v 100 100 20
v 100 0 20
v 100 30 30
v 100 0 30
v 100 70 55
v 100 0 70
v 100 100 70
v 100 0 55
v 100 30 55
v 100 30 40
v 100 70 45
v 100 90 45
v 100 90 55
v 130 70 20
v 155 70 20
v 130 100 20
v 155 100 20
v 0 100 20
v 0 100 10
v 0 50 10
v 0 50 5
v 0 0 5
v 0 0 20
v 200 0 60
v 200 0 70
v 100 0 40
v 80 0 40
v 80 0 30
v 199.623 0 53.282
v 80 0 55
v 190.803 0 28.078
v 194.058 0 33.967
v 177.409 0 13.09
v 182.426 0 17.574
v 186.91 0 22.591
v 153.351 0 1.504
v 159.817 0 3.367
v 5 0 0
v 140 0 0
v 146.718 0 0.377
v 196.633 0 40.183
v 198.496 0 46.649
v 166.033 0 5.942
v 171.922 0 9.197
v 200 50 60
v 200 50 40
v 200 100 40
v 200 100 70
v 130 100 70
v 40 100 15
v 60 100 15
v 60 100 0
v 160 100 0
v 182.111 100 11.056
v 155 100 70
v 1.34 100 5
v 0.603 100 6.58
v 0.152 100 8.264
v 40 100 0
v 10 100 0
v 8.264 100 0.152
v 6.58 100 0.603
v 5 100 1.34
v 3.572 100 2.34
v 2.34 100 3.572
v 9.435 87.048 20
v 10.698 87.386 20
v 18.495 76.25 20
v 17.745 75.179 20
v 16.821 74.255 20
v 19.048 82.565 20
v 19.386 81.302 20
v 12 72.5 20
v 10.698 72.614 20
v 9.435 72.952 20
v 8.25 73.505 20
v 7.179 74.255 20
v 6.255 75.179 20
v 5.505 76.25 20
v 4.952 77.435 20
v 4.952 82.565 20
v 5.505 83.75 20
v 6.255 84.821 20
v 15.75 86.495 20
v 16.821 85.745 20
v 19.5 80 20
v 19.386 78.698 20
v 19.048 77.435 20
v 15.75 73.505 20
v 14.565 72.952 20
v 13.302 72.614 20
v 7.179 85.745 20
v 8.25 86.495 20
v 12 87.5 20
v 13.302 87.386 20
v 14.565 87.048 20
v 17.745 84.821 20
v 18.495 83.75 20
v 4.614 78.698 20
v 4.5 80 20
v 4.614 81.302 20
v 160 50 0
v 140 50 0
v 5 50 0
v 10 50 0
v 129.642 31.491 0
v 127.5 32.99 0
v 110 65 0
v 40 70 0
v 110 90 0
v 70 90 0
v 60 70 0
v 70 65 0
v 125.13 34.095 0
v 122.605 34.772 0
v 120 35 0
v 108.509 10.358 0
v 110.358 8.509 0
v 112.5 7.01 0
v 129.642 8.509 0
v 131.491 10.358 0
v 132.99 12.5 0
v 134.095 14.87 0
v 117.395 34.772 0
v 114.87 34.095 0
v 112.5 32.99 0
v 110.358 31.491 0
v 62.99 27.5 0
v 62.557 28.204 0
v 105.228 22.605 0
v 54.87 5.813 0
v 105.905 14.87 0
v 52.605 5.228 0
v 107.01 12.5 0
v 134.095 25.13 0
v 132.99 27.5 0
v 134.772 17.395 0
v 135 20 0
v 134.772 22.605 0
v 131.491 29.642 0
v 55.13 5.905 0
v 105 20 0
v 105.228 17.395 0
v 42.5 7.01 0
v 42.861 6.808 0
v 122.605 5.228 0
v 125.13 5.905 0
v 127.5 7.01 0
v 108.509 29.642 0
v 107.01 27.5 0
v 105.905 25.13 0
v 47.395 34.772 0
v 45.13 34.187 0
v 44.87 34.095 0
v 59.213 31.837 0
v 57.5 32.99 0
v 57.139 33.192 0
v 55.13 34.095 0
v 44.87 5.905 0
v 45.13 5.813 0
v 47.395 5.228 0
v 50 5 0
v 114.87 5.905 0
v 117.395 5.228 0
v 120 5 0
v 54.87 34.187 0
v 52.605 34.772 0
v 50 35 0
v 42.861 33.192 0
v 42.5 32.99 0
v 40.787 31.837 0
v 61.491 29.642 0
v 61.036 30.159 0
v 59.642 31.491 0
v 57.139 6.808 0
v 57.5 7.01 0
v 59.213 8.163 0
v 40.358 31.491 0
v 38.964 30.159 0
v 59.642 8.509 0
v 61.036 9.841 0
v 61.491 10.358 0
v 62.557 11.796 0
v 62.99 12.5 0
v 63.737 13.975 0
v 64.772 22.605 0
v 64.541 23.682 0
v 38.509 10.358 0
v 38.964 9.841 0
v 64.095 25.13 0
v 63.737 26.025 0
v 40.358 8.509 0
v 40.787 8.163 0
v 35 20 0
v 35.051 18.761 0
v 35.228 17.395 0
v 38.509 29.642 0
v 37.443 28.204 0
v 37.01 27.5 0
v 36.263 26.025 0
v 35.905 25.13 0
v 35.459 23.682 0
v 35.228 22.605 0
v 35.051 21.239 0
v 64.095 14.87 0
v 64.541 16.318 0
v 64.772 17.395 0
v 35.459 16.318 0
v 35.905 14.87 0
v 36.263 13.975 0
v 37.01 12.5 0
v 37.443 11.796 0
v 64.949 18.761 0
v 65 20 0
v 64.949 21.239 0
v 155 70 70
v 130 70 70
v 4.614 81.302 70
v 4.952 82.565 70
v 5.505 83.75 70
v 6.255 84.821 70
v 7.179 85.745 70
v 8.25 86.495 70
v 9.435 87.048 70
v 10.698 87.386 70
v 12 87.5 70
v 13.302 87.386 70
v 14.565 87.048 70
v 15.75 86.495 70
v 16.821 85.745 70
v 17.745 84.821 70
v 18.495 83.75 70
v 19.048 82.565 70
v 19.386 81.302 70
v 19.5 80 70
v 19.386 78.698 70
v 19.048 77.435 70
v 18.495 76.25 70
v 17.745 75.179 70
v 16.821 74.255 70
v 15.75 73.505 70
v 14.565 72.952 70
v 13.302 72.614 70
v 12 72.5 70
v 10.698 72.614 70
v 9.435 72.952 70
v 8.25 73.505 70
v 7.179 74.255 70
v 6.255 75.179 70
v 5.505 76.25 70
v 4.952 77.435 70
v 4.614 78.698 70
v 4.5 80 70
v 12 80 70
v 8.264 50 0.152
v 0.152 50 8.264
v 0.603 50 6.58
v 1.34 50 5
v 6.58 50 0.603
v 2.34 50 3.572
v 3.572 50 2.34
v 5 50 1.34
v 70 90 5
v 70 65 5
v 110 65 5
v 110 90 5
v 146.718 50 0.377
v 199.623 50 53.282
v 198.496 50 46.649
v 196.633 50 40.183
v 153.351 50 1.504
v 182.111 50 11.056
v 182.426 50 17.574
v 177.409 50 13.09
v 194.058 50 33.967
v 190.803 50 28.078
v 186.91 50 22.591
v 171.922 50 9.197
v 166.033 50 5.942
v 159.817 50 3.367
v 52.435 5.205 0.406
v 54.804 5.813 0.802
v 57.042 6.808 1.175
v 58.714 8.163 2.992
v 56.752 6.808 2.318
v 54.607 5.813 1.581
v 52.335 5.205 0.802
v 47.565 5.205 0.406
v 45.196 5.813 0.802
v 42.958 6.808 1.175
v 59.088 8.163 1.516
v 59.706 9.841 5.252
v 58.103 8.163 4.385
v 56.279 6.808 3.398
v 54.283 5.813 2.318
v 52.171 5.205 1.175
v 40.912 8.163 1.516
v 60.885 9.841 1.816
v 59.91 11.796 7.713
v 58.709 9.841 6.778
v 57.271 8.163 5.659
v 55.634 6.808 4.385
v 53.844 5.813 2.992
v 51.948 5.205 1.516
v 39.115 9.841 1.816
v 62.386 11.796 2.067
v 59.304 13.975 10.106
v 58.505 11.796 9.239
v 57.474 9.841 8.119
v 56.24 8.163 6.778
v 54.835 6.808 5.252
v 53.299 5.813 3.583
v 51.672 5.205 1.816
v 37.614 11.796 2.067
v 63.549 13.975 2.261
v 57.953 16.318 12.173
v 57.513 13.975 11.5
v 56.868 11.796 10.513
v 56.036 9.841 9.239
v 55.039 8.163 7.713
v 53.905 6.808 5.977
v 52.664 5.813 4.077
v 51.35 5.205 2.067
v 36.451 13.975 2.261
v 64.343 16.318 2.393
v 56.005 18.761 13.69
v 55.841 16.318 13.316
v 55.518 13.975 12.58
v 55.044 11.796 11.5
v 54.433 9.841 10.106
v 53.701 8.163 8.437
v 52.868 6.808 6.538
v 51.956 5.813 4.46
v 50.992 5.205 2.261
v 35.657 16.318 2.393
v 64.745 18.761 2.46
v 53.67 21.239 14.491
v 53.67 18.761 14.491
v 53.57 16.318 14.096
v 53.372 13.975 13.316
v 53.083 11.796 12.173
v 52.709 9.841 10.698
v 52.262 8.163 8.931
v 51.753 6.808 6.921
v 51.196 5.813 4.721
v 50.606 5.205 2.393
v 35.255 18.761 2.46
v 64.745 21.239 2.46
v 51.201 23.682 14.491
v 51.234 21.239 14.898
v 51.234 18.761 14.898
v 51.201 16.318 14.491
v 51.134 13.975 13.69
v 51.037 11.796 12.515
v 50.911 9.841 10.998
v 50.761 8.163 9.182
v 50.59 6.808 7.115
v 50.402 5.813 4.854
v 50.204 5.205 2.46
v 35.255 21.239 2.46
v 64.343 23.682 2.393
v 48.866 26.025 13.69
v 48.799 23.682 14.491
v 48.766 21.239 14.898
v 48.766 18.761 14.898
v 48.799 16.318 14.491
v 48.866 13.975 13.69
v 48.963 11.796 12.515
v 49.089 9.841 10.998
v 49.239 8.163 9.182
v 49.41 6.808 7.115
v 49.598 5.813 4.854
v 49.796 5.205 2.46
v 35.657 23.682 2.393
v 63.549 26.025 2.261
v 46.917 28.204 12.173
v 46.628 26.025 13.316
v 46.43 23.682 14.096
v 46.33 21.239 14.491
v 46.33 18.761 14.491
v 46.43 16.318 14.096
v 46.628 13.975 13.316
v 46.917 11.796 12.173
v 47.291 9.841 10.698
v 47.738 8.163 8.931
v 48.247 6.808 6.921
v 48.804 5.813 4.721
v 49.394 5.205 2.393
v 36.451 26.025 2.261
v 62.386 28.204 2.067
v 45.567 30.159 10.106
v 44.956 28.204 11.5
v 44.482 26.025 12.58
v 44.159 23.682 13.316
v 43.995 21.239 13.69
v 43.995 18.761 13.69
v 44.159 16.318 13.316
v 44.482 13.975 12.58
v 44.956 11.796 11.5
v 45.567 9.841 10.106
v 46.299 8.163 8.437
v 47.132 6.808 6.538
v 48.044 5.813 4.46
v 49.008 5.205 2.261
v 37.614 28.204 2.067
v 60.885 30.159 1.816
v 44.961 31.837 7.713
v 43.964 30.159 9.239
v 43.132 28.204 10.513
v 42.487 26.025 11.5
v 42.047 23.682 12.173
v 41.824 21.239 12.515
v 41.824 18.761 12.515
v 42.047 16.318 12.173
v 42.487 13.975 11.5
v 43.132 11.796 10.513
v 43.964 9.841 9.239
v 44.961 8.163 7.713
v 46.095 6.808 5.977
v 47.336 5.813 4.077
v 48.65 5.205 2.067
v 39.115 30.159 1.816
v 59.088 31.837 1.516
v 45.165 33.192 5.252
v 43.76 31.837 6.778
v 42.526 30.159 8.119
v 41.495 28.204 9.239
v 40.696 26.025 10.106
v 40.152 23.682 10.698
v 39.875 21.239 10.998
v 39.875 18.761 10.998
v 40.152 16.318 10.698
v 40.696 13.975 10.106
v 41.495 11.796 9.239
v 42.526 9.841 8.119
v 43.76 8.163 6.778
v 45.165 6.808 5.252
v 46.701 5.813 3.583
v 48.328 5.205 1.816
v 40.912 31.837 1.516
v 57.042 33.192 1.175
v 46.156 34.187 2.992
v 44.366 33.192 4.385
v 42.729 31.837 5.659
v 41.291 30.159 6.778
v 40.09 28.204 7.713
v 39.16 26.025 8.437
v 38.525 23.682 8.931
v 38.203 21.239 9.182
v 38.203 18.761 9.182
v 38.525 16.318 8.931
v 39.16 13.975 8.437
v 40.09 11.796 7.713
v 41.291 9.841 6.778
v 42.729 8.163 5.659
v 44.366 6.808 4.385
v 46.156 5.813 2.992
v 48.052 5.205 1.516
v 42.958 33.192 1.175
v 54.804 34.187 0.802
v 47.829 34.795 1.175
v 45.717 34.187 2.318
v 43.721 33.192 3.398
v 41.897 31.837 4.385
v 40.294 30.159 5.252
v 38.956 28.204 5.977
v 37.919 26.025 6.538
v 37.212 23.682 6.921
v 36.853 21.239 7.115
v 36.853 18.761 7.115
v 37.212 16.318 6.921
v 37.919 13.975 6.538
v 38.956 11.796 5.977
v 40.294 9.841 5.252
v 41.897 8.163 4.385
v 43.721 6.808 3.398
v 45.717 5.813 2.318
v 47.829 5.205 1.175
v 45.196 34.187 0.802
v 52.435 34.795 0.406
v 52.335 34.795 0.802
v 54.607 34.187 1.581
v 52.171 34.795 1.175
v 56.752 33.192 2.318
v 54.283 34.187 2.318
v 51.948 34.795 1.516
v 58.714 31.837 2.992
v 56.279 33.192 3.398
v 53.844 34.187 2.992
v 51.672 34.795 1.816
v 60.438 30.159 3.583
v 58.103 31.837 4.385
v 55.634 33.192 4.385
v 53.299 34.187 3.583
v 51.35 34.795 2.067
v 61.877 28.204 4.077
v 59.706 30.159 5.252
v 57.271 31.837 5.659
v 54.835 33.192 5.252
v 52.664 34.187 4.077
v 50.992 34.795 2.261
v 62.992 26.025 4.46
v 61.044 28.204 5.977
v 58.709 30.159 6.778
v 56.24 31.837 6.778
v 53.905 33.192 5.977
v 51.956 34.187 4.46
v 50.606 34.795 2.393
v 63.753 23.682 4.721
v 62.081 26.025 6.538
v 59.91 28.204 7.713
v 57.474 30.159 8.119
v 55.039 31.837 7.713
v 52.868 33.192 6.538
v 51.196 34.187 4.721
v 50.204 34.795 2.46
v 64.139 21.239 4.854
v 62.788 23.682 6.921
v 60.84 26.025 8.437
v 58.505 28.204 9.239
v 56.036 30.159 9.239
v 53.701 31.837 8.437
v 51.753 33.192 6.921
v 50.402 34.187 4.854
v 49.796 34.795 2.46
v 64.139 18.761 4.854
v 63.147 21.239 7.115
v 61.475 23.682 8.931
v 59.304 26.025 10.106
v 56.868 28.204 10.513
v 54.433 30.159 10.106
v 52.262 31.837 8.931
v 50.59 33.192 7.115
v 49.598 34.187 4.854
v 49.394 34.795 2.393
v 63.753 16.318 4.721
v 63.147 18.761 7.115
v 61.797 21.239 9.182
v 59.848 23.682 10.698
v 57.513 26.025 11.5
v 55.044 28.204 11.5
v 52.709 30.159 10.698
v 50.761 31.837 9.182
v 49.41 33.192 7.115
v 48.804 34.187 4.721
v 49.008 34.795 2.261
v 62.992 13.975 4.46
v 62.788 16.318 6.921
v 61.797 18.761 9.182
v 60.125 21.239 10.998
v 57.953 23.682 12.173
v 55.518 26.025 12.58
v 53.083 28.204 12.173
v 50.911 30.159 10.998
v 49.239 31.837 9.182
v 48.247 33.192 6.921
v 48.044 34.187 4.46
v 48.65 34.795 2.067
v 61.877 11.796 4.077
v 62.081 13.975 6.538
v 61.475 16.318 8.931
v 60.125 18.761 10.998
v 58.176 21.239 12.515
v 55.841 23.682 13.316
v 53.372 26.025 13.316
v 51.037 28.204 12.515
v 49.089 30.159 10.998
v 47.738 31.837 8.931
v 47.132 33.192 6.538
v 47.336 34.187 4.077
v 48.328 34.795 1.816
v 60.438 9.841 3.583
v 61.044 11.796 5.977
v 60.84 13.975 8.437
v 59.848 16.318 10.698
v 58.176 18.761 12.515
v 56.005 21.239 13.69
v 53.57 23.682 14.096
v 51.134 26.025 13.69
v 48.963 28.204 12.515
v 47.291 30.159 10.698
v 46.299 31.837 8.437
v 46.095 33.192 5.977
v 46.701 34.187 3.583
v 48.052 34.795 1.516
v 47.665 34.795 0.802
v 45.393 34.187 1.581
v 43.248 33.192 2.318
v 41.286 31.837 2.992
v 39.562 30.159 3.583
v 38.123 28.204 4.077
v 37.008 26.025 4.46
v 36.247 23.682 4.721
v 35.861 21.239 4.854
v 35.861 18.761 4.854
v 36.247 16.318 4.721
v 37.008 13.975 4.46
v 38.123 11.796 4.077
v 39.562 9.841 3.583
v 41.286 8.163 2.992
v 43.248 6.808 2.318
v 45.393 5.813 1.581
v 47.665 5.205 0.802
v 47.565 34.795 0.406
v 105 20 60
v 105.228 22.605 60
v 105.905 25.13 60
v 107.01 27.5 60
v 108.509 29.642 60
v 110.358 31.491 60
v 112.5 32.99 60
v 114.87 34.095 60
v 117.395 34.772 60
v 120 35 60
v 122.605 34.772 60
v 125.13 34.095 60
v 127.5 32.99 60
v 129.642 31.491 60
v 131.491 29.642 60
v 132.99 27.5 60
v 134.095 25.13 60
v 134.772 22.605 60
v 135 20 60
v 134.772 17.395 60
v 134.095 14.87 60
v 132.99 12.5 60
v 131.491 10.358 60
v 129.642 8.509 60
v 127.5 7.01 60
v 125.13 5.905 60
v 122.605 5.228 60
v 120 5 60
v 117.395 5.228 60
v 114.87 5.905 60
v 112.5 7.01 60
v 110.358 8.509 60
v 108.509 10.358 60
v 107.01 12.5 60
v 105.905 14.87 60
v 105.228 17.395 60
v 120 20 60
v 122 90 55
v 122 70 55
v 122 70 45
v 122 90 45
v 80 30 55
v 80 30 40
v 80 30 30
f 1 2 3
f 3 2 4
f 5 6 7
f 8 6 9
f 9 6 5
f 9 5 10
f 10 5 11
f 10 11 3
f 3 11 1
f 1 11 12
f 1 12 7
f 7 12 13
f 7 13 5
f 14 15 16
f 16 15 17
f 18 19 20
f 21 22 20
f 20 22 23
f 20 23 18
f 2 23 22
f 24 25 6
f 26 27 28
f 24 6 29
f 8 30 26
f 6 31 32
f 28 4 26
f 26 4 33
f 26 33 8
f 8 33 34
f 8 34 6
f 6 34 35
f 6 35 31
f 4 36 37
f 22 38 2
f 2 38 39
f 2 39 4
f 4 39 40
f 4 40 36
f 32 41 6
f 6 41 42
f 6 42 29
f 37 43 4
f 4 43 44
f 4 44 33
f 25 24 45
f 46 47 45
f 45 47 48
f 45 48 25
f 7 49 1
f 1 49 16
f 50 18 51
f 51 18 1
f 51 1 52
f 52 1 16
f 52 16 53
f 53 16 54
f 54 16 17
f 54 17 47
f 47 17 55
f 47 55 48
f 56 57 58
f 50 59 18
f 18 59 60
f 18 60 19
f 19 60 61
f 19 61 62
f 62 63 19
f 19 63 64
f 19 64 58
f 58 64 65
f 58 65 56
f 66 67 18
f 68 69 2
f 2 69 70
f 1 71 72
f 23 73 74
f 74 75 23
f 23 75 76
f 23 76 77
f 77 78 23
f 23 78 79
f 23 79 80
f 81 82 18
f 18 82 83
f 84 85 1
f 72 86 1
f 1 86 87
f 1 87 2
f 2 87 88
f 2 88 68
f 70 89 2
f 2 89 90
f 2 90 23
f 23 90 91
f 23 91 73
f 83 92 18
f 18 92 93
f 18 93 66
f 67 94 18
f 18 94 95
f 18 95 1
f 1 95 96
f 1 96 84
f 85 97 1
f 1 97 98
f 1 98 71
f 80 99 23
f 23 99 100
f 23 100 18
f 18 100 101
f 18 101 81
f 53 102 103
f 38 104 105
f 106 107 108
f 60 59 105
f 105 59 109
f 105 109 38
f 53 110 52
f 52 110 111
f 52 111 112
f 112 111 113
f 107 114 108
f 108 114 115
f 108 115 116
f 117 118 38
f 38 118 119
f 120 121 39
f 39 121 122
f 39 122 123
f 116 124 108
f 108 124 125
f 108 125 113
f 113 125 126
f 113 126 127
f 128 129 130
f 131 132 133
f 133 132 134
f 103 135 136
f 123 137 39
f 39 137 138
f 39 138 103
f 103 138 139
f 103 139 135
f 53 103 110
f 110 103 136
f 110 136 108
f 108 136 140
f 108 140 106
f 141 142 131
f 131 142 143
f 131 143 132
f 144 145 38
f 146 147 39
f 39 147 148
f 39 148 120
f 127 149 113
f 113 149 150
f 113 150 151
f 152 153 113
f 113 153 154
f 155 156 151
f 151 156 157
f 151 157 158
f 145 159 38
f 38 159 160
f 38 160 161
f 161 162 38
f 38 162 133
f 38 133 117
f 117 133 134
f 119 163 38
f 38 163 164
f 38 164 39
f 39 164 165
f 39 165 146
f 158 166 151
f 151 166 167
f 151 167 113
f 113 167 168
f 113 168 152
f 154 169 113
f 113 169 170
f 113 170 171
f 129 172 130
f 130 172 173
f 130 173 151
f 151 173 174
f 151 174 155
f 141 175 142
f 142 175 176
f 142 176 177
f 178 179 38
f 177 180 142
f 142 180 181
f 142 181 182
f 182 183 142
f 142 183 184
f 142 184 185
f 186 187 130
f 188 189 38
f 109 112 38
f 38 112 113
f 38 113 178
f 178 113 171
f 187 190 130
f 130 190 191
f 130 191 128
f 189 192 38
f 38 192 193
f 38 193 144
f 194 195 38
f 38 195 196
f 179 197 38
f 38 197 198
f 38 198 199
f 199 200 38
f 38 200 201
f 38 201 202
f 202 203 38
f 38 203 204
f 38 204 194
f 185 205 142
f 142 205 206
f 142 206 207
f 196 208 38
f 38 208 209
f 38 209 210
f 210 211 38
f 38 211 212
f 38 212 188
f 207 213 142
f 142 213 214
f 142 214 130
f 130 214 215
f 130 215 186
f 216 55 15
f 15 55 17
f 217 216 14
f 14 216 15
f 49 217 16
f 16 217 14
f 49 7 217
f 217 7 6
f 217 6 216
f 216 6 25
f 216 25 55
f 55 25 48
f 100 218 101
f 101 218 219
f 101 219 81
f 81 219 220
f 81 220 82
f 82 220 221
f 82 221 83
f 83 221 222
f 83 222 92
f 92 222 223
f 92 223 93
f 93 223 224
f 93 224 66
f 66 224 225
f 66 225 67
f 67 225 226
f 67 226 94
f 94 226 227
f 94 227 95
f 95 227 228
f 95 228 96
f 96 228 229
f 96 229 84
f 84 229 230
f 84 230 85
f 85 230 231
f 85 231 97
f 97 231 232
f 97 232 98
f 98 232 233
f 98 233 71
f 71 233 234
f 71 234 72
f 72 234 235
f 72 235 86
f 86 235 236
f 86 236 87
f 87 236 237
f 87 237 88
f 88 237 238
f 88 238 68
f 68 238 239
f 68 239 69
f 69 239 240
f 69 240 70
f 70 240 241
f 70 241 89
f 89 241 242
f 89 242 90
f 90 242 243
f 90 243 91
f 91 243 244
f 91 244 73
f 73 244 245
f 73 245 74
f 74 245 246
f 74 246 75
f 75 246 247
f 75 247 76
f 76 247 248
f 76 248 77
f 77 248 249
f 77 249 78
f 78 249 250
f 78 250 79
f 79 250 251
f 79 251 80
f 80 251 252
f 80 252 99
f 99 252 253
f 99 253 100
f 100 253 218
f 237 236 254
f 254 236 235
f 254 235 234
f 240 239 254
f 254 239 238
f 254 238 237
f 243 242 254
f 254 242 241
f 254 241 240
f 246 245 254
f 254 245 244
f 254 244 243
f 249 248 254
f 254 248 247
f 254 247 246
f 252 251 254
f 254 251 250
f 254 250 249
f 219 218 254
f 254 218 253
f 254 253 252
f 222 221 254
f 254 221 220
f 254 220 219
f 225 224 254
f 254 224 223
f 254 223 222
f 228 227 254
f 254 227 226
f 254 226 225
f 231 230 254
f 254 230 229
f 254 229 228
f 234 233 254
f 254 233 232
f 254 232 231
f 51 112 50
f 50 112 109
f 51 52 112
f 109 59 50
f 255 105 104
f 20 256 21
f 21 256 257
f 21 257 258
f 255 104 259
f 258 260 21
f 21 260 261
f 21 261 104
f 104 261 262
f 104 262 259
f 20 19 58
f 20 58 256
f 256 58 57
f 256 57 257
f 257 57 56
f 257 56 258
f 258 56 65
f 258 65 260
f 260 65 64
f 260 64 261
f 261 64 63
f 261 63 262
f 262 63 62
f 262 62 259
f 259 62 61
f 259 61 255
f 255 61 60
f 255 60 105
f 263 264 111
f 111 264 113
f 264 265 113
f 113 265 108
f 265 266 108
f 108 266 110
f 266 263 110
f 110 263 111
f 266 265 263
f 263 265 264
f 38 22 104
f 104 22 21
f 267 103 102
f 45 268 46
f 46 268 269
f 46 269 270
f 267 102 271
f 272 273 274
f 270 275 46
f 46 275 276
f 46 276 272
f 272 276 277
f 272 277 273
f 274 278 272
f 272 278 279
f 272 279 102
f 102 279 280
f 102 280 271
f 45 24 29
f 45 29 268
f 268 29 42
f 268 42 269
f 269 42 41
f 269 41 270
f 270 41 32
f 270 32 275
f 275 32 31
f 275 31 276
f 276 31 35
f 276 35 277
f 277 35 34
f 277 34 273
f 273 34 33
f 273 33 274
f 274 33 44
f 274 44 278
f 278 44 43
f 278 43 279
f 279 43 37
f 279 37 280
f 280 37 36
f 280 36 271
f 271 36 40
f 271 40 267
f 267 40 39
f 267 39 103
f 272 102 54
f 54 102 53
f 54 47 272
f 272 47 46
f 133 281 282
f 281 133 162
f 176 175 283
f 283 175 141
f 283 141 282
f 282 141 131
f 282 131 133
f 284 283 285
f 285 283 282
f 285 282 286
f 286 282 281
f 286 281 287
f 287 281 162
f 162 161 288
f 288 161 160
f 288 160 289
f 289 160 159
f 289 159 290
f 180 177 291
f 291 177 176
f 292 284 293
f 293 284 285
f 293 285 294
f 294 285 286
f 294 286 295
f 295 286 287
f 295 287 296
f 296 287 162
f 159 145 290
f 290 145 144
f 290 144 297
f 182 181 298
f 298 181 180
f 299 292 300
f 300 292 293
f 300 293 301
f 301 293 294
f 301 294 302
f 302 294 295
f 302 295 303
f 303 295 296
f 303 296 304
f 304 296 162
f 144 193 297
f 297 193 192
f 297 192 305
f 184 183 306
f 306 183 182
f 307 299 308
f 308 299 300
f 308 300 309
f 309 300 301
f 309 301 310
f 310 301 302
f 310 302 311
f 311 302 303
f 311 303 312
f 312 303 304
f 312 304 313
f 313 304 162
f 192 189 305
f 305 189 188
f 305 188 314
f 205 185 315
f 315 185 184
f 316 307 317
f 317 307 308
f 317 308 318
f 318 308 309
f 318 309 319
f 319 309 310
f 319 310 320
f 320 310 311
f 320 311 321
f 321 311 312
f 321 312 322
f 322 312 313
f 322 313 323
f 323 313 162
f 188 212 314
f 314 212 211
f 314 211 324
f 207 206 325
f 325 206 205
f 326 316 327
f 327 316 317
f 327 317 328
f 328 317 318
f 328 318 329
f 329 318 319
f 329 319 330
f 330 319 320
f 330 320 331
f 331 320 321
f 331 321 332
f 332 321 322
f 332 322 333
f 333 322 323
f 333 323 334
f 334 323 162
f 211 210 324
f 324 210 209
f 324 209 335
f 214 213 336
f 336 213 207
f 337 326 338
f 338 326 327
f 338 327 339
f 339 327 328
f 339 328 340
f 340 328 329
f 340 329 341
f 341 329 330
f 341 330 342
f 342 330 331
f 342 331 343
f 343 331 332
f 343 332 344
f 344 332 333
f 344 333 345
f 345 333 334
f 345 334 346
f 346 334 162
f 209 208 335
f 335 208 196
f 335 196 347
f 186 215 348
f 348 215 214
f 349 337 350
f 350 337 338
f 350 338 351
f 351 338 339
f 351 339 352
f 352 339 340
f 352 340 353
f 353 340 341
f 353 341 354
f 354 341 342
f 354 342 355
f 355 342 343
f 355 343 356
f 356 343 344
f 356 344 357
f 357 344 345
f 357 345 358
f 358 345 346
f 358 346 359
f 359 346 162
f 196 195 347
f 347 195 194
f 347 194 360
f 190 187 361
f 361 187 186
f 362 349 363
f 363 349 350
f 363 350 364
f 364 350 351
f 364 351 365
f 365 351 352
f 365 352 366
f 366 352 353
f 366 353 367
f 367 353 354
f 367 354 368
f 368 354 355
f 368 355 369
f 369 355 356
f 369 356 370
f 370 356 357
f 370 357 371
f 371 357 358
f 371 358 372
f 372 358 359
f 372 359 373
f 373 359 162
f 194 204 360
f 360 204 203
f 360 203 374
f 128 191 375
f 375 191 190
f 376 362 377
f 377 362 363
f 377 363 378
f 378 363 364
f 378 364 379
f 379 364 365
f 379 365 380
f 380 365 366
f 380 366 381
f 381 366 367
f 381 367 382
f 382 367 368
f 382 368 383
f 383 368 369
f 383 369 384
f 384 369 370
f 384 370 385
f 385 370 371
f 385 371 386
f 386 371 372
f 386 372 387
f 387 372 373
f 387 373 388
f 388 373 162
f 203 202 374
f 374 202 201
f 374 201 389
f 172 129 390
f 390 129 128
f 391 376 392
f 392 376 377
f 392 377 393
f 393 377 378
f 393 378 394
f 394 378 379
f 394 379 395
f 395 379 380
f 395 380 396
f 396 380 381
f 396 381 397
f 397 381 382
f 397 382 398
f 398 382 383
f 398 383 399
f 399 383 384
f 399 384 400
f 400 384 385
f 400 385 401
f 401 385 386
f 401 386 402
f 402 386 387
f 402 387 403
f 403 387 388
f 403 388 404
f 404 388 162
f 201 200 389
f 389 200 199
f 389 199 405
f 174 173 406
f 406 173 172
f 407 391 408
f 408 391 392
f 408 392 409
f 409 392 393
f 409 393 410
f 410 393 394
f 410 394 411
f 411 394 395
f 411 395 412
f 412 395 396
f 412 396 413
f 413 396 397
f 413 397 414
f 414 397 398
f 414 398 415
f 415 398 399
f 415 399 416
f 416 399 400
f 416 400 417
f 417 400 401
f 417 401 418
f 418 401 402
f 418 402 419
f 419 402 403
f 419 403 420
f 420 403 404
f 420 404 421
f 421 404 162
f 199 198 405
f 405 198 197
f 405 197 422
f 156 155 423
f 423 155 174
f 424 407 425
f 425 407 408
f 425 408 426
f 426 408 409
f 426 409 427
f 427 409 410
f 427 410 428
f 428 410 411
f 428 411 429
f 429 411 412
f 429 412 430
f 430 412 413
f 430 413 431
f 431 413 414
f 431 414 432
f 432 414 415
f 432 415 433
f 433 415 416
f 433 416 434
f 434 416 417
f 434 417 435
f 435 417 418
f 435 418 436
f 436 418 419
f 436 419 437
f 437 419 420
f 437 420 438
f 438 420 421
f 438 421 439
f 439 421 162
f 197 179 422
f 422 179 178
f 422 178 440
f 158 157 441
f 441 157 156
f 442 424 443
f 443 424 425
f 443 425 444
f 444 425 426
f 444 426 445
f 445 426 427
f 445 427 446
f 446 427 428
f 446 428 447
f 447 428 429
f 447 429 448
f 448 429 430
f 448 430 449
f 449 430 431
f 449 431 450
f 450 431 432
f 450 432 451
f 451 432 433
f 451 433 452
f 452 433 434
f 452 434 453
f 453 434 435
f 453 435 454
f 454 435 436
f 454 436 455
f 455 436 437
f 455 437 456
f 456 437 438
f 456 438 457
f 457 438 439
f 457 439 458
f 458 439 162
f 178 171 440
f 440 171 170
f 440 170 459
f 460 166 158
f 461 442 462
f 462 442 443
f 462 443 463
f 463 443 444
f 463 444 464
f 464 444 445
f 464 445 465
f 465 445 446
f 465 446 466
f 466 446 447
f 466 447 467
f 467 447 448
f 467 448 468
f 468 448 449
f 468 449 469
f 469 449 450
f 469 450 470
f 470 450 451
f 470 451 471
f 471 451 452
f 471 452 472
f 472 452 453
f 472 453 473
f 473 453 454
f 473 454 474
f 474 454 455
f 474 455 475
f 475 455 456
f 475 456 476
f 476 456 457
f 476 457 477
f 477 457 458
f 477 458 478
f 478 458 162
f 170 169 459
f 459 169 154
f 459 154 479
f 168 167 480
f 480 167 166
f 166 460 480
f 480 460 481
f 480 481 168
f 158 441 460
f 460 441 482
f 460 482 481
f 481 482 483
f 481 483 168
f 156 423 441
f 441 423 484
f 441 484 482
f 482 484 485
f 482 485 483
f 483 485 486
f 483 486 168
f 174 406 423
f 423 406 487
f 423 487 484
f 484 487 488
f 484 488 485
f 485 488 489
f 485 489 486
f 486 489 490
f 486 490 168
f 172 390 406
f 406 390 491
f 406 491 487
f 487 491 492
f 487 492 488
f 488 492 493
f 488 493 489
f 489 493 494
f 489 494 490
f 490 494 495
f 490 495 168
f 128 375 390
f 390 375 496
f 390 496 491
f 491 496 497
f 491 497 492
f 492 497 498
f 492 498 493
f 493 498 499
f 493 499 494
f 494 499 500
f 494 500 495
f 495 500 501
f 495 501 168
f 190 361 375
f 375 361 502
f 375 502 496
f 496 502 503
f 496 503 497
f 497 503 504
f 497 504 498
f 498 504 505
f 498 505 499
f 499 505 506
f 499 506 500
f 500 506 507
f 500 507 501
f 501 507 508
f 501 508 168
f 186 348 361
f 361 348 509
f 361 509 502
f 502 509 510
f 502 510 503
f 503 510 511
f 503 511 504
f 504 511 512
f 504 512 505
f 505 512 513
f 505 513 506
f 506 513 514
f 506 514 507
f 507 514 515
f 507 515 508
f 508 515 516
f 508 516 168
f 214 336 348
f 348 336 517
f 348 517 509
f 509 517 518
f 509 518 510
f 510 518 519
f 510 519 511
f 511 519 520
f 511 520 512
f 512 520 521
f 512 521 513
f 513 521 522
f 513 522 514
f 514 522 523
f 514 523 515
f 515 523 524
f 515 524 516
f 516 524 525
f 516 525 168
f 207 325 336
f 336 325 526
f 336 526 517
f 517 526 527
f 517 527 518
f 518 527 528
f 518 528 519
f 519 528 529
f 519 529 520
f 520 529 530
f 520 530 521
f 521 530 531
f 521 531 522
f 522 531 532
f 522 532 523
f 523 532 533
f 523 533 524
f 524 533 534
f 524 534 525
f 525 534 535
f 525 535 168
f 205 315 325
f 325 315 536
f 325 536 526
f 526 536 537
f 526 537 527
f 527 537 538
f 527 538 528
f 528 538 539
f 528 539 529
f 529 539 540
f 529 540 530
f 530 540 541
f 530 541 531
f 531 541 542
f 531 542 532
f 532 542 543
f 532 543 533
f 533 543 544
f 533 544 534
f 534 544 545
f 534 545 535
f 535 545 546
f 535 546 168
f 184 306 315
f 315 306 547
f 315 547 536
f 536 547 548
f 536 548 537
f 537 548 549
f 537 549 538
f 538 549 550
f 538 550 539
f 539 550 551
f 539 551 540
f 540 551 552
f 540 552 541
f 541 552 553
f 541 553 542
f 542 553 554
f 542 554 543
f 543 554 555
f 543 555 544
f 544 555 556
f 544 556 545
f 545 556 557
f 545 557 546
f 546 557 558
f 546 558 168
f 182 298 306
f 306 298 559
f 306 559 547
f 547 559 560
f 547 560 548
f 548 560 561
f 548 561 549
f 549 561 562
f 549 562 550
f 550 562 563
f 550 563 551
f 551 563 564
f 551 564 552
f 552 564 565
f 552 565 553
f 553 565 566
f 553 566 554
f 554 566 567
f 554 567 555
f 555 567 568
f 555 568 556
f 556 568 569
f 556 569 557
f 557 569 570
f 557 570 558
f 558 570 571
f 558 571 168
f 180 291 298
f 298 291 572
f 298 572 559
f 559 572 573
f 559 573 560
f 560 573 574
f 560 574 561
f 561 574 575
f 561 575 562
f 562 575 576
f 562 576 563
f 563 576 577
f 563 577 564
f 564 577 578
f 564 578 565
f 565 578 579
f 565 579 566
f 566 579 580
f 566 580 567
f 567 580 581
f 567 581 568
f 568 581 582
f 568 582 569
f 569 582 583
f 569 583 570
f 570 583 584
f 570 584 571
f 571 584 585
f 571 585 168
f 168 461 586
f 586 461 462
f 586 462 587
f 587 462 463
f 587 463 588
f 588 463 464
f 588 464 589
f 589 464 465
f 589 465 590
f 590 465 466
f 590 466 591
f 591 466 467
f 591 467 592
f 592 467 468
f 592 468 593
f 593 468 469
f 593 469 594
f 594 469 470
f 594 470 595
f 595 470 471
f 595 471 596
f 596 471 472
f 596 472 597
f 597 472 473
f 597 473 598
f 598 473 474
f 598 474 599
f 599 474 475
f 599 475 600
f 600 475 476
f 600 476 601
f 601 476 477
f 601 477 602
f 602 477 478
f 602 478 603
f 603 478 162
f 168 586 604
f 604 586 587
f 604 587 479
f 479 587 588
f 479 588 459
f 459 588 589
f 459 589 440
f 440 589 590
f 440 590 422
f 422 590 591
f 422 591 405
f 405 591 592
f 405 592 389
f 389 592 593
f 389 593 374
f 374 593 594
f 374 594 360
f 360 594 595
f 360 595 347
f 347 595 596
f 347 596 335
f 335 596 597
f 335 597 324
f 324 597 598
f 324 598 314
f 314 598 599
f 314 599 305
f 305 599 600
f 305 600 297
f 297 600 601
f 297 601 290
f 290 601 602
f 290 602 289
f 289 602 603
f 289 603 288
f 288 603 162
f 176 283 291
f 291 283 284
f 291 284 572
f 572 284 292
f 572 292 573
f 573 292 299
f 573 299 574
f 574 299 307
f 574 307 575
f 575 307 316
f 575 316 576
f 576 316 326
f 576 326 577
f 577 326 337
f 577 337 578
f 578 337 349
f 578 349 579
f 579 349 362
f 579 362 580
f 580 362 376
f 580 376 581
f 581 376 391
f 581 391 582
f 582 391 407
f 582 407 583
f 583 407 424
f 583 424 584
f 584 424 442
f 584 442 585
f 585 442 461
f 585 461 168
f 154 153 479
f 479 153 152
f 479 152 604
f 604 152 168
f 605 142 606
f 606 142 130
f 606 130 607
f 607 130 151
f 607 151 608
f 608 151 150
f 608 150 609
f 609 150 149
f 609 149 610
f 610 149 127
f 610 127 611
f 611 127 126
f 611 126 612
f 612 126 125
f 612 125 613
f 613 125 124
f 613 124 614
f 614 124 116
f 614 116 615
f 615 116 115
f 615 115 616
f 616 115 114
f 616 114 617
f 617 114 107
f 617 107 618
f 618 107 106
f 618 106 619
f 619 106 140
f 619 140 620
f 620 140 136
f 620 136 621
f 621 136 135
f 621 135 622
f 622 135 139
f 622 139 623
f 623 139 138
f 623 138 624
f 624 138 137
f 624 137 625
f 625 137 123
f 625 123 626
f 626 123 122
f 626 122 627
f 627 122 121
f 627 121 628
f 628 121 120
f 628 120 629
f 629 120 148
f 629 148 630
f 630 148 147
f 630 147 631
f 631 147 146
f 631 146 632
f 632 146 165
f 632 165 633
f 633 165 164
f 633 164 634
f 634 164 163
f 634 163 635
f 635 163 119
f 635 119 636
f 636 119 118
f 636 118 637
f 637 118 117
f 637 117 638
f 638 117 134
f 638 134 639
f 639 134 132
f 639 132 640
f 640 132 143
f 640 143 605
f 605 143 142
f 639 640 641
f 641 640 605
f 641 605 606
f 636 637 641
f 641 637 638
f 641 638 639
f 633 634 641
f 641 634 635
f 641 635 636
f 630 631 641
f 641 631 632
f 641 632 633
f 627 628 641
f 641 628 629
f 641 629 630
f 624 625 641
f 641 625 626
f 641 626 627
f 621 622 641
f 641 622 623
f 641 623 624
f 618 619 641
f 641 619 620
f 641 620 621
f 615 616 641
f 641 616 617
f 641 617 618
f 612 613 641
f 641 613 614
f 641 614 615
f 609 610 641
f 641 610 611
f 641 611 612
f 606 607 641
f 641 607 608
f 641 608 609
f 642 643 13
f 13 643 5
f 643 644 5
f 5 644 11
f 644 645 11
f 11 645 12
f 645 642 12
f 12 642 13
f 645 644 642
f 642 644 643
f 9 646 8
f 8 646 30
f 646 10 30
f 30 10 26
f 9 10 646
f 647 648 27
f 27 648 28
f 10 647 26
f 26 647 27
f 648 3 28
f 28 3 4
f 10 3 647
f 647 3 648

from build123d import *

# Parameters (mm, degrees)
SKICA1_W                 = 200
SKICA1_H                 = 100
P_IDAT_VYSUNUT_M1_DEPTH  = 20
P_IDAT_VYSUNUT_M2_DEPTH  = 50
SKICA7_R                 = 7.5
P_IDAT_VYSUNUT_M3_DEPTH  = 50
ODEBRAT_VYSUNUT_M3_DEPTH = 10
ZAOBLIT1_START           = 50
ZAOBLIT1_DEPTH           = 51
SKICA9_W                 = 40
SKICA9_H                 = 25
ODEBRAT_VYSUNUT_M4_DEPTH = 5
CHAMFER2_SIZE            = 5
FILLET2_DEPTH            = 50
CHAMFER3_SIZE            = 40
CHAMFER3_SIZE2           = 20
CHAMFER4_SIZE            = 20
SKETCH3_R                = 15
CUT_EXTRUDE2_DEPTH       = 60
SKETCH4_W                = 10
SKETCH4_H                = 20
CUT_EXTRUDE3_DEPTH       = 22
SKETCH5_W                = 20
SKETCH5_H                = 10
BOSS_EXTRUDE1_DEPTH      = 30


with BuildPart() as part:
    # Skica1 → Přidat vysunutím1 (new body)
    with BuildSketch(Plane.XY):
        with Locations((100, 50)):
            Rectangle(SKICA1_W, SKICA1_H)
    extrude(amount=P_IDAT_VYSUNUT_M1_DEPTH)

    # Skica2 → Přidat vysunutím2 (add)
    with BuildSketch(Plane.XY.offset(20)):
        Polygon((100, 0), (200, 0), (200, 100), (155, 100), (155, 70), (130, 70), (130, 100), (100, 100), align=None)
    extrude(amount=P_IDAT_VYSUNUT_M2_DEPTH)

    # Skica7 → Přidat vysunutím3 (add)
    with BuildSketch(Plane.XY.offset(20)):
        with Locations(Location((12, 80, 0), (0, 0, 180))):
            Circle(SKICA7_R)
    extrude(amount=P_IDAT_VYSUNUT_M3_DEPTH)

    # Skica8 → Odebrat vysunutím3 (cut, symmetric)
    with BuildSketch(Plane.ZY.offset(-50)):
        Polygon((0, 100), (0, 70), (15, 100), align=None)
    extrude(amount=ODEBRAT_VYSUNUT_M3_DEPTH, both=True, mode=Mode.SUBTRACT)

    # Zaoblit1: read off the stored shape, not the designer's step
    # Zaoblit1 outline → Zaoblit1 (cut)
    with BuildSketch(Plane(origin=(0, 0, 0), x_dir=(1, 0, 0), z_dir=(0, 1, 0)).offset(ZAOBLIT1_START)):
        with BuildLine():
            ThreePointArc((0, -10), (2.928932188, -2.928932188), (10, 0))
            Line((10, 0), (0, 0))
            Line((0, 0), (0, -10))
        make_face()
    extrude(amount=ZAOBLIT1_DEPTH, mode=Mode.SUBTRACT)

    # Skica9 → Odebrat vysunutím4 (cut)
    with BuildSketch(Plane(origin=(0, 0, 0), x_dir=(-1, 0, 0), z_dir=(0, 0, -1))):
        with Locations((-90, 77.5)):
            Rectangle(SKICA9_W, SKICA9_H)
    extrude(amount=-ODEBRAT_VYSUNUT_M4_DEPTH, mode=Mode.SUBTRACT)

    # Chamfer2
    chamfer2_edges = [part.edges().sort_by_distance(p)[0] for p in [
        (0, 25, 0),
    ]]
    chamfer(chamfer2_edges, length=CHAMFER2_SIZE)

    # Fillet2: read off the stored shape, not the designer's step
    # Fillet2 outline → Fillet2 (cut)
    with BuildSketch(Plane(origin=(0, 0, 0), x_dir=(1, 0, 0), z_dir=(0, 1, 0))):
        with BuildLine():
            Line((200, 0), (140, 0))
            ThreePointArc((140, 0), (182.426406871, -17.573593129), (200, -60))
            Line((200, -60), (200, 0))
        make_face()
    extrude(amount=FILLET2_DEPTH, mode=Mode.SUBTRACT)

    # Chamfer3
    chamfer3_edges = [part.edges().sort_by_distance(p)[0] for p in [
        (200, 75, 0),
    ]]
    chamfer3_side = [part.faces().sort_by_distance(p)[0] for p in [
        (93.302047782, 51.38225256, 0),
    ]]
    chamfer(chamfer3_edges, length=CHAMFER3_SIZE, length2=CHAMFER3_SIZE2, reference=chamfer3_side[0])

    # Chamfer4
    chamfer4_edges = [part.edges().sort_by_distance(p)[0] for p in [
        (200, 75, 20),
    ]]
    chamfer(chamfer4_edges, length=CHAMFER4_SIZE)

    # Sketch2 → Cut-Revolve4 (revolve, cut)
    with BuildSketch(Plane(origin=(0, 0, 0), x_dir=(-1, 0, 0), z_dir=(0, 0, -1))):
        with BuildLine():
            Line((-50, 35), (-50, 5))
            ThreePointArc((-50, 5), (-35, 20), (-50, 35))
        make_face()
    revolve(axis=Axis((50, 35, 0), (0, -1, 0)), mode=Mode.SUBTRACT)

    # Sketch3 → Cut-Extrude2 (cut)
    with BuildSketch(Plane(origin=(0, 0, 0), x_dir=(-1, 0, 0), z_dir=(0, 0, -1))):
        with Locations((-120, 20)):
            Circle(SKETCH3_R)
    extrude(amount=-CUT_EXTRUDE2_DEPTH, mode=Mode.SUBTRACT)

    # Sketch4 → Cut-Extrude3 (cut)
    with BuildSketch(Plane.ZY.offset(-100)):
        with Locations((50, 80)):
            Rectangle(SKETCH4_W, SKETCH4_H)
    extrude(amount=-CUT_EXTRUDE3_DEPTH, mode=Mode.SUBTRACT)

    # Sketch5 → Boss-Extrude1 (add)
    with BuildSketch(Plane.XZ):
        Polygon((80, 55), (100, 40), (100, 55), align=None)
        with Locations((90, 35)):
            Rectangle(SKETCH5_W, SKETCH5_H)
    extrude(amount=-BOSS_EXTRUDE1_DEPTH)


solid = part.part
